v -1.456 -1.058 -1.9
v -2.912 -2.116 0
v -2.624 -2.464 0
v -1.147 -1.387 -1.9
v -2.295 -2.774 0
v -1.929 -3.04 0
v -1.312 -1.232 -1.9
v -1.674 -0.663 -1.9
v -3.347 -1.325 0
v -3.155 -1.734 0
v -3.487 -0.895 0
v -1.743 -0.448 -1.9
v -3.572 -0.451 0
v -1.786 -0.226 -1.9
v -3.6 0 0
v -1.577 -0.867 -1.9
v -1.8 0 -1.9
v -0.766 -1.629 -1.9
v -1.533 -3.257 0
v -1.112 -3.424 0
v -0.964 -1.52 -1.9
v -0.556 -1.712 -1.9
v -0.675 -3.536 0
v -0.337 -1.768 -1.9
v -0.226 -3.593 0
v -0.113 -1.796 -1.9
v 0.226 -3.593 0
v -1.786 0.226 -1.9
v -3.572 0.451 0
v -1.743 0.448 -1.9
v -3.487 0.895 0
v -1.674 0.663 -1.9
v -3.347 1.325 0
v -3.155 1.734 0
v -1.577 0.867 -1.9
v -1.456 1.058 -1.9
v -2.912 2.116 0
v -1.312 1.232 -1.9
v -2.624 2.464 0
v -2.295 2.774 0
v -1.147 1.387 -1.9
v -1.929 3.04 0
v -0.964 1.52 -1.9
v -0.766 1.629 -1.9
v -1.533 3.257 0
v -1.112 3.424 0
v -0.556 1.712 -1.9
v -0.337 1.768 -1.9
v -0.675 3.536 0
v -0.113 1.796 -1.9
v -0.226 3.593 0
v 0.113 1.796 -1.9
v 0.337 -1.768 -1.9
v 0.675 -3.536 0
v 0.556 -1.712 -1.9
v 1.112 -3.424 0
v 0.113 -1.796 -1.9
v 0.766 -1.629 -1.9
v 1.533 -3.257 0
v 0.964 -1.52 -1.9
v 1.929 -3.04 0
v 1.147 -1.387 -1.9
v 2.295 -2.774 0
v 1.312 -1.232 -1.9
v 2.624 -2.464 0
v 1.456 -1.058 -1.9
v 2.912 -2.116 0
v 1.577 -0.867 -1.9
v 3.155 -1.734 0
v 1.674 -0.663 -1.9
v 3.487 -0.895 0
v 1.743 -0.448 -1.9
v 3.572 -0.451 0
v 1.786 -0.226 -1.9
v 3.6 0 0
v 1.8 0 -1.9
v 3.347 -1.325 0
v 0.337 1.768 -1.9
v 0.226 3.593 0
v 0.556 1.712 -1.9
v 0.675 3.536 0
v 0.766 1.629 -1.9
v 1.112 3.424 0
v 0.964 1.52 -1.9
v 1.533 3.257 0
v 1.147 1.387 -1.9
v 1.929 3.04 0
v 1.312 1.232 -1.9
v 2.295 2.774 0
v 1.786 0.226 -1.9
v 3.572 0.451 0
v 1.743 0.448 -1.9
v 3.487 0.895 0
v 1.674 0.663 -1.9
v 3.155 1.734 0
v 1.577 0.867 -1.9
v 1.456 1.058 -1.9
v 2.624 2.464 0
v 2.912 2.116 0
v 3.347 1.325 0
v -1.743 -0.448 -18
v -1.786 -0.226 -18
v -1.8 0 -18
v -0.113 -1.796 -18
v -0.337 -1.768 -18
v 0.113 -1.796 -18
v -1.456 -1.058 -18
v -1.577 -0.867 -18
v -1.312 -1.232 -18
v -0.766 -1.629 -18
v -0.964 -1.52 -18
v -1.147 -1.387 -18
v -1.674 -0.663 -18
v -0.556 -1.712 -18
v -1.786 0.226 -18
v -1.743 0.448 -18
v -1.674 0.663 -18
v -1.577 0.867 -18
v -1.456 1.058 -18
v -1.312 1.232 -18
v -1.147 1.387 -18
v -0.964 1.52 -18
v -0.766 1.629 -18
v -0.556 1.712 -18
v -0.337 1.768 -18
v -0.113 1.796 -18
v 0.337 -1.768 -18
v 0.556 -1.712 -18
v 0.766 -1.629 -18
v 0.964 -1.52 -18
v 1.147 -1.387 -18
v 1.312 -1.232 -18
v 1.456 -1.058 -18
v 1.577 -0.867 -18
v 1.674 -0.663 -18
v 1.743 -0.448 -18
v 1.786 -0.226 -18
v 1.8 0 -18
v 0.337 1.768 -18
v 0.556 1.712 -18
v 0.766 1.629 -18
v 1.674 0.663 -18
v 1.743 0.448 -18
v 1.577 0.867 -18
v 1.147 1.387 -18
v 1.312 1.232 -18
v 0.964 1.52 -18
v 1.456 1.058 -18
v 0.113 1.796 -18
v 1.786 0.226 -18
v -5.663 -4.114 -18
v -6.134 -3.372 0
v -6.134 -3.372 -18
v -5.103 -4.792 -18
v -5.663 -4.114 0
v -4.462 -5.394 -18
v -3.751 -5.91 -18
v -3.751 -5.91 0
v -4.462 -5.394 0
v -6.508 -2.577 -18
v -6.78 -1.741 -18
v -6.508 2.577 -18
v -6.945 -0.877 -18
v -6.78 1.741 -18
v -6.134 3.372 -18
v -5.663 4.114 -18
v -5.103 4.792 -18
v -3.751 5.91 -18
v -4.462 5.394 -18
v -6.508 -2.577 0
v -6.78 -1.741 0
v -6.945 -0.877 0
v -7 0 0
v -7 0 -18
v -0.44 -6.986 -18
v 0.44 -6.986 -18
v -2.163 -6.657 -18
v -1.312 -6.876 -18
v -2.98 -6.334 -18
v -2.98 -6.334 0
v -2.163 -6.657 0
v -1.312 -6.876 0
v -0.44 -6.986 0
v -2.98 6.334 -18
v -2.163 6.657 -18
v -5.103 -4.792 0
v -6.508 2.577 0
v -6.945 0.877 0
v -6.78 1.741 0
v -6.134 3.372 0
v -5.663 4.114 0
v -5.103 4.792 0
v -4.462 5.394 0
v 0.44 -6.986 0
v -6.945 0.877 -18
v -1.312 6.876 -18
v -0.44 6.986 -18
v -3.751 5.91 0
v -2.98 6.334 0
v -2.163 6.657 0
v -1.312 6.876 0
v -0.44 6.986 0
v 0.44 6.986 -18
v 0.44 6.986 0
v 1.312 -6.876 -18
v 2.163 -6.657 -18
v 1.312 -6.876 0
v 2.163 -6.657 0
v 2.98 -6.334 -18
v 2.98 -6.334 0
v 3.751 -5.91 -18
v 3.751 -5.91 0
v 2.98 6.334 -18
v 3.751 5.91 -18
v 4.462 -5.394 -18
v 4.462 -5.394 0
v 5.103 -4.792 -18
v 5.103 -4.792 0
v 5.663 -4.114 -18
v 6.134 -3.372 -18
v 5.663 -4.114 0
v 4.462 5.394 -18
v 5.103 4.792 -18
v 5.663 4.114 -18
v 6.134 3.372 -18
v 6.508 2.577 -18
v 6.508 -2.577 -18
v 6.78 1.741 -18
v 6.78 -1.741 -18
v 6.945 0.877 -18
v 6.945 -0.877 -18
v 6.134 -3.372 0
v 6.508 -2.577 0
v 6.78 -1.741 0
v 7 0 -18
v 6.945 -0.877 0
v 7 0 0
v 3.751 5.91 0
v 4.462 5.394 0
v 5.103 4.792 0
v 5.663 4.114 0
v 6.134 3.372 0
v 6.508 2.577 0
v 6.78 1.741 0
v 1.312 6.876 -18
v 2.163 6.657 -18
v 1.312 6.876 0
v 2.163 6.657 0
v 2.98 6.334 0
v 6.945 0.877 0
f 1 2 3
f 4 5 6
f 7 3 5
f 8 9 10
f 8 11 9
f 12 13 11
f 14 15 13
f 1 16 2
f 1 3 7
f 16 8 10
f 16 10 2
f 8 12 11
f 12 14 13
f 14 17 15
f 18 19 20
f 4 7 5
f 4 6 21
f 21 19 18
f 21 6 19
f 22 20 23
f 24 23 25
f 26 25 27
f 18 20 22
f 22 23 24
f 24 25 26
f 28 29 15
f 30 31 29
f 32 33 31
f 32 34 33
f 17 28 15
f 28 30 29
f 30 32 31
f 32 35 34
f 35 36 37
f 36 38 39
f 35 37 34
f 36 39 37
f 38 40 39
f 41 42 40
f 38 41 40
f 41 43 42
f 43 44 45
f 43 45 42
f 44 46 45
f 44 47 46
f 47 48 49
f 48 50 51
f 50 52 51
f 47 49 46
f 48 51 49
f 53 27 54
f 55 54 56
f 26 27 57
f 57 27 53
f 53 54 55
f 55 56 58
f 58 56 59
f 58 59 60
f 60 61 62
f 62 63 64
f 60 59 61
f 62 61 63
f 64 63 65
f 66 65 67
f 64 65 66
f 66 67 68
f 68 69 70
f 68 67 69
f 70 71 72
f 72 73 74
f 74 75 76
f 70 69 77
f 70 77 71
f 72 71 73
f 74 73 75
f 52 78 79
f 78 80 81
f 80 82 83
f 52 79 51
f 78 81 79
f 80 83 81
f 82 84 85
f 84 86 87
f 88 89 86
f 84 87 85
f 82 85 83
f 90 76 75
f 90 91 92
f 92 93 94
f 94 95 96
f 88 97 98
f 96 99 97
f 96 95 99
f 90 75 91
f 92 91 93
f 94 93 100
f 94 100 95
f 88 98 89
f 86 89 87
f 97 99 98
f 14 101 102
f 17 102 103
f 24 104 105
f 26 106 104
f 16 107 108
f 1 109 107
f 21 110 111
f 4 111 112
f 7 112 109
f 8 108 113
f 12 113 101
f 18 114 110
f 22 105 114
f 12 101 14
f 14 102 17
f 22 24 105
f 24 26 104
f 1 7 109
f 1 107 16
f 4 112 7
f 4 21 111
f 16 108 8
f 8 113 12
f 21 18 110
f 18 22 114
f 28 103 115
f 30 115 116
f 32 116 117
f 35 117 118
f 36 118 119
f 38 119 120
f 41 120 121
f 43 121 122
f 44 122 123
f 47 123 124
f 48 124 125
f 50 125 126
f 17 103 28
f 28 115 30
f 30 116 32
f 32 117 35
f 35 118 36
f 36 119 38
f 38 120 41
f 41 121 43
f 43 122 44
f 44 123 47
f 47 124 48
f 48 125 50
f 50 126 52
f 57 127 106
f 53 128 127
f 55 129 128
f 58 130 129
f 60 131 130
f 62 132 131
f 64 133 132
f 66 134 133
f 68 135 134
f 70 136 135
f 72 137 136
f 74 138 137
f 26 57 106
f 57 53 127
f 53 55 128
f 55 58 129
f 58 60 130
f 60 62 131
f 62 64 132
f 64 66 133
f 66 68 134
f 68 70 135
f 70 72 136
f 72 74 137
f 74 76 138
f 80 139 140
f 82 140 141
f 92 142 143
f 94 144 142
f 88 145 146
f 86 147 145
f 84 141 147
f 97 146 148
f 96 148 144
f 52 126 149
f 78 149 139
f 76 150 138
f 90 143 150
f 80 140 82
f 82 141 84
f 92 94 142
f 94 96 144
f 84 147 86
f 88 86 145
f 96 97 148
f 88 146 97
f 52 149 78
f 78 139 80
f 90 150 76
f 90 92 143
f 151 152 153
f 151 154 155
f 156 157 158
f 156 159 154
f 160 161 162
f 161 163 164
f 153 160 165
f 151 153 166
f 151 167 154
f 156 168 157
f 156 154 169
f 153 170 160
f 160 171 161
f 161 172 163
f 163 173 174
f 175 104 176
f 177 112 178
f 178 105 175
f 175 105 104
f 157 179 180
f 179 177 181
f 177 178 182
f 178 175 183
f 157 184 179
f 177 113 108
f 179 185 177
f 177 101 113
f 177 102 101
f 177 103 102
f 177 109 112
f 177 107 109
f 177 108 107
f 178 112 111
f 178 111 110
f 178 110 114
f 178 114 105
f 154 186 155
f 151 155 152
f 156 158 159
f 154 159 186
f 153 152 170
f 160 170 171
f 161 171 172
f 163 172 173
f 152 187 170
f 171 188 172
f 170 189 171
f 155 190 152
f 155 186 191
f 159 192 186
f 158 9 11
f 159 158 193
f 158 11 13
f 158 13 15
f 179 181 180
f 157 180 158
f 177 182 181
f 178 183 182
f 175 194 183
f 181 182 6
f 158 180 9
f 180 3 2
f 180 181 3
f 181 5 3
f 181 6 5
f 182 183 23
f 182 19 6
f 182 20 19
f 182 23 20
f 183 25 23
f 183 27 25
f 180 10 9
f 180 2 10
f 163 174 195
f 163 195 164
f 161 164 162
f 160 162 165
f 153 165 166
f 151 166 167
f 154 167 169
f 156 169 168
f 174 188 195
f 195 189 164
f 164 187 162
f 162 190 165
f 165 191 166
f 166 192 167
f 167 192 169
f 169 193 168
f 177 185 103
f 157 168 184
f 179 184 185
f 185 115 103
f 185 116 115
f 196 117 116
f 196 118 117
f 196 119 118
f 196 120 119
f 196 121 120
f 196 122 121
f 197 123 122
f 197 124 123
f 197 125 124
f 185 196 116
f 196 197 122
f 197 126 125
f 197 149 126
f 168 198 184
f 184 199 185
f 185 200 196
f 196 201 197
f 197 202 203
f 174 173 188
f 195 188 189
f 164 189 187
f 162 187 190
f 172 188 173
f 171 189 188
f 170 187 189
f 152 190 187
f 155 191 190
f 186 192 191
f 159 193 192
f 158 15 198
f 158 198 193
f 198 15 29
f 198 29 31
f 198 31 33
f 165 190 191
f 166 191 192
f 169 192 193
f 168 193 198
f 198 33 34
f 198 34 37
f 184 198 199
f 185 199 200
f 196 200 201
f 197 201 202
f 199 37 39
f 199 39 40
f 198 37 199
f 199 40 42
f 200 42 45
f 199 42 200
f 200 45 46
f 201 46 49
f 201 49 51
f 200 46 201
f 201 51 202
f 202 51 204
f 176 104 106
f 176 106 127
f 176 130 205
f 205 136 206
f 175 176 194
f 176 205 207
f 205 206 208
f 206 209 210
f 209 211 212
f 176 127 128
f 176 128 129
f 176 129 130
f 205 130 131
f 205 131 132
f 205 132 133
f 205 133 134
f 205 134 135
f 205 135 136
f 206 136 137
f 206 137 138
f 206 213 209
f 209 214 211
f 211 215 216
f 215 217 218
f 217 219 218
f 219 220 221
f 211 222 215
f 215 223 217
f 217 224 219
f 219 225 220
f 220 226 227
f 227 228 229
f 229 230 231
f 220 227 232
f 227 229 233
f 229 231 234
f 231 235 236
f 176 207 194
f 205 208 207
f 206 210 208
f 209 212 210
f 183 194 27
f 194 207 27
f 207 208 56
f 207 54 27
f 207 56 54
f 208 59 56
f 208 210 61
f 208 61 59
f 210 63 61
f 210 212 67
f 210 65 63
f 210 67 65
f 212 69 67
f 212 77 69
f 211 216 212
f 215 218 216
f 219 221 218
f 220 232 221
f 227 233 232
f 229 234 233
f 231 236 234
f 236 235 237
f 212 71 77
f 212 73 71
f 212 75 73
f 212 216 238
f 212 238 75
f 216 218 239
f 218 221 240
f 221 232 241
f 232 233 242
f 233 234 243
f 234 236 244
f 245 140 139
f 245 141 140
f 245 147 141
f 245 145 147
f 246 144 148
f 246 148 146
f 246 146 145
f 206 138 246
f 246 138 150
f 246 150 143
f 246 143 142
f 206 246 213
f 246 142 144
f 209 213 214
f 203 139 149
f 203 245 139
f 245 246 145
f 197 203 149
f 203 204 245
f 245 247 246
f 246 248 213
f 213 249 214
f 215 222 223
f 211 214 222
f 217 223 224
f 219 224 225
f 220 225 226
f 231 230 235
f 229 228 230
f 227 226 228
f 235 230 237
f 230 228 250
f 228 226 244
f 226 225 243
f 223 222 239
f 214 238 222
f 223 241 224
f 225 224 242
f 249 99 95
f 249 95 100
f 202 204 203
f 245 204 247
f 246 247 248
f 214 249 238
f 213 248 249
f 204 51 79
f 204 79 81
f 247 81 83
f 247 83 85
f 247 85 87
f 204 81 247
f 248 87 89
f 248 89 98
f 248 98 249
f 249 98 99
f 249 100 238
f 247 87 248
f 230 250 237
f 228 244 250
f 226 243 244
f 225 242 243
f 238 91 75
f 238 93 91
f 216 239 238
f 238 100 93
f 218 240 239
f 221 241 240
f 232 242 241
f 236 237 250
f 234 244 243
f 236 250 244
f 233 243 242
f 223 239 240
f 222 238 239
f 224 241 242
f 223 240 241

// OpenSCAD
$fn = 50;

difference() {
	union() {
		translate(v = [0, 0, -18.0]) {
			cylinder(h = 18, r = 7.0);
		}
	}
	union() {
		translate(v = [0, 0, 0]) {
			rotate(a = [0, 0, 0]) {
				difference() {
					union() {
						translate(v = [0, 0, -21.0]) {
							cylinder(h = 21, r = 1.5);
						}
						translate(v = [0, 0, -1.9]) {
							cylinder(h = 1.9, r1 = 1.8, r2 = 3.6);
						}
						translate(v = [0, 0, -21.0]) {
							cylinder(h = 21, r = 1.8);
						}
						translate(v = [0, 0, -21.0]) {
							cylinder(h = 21, r = 1.5);
						}
					}
					union();
				}
			}
		}
	}
}
